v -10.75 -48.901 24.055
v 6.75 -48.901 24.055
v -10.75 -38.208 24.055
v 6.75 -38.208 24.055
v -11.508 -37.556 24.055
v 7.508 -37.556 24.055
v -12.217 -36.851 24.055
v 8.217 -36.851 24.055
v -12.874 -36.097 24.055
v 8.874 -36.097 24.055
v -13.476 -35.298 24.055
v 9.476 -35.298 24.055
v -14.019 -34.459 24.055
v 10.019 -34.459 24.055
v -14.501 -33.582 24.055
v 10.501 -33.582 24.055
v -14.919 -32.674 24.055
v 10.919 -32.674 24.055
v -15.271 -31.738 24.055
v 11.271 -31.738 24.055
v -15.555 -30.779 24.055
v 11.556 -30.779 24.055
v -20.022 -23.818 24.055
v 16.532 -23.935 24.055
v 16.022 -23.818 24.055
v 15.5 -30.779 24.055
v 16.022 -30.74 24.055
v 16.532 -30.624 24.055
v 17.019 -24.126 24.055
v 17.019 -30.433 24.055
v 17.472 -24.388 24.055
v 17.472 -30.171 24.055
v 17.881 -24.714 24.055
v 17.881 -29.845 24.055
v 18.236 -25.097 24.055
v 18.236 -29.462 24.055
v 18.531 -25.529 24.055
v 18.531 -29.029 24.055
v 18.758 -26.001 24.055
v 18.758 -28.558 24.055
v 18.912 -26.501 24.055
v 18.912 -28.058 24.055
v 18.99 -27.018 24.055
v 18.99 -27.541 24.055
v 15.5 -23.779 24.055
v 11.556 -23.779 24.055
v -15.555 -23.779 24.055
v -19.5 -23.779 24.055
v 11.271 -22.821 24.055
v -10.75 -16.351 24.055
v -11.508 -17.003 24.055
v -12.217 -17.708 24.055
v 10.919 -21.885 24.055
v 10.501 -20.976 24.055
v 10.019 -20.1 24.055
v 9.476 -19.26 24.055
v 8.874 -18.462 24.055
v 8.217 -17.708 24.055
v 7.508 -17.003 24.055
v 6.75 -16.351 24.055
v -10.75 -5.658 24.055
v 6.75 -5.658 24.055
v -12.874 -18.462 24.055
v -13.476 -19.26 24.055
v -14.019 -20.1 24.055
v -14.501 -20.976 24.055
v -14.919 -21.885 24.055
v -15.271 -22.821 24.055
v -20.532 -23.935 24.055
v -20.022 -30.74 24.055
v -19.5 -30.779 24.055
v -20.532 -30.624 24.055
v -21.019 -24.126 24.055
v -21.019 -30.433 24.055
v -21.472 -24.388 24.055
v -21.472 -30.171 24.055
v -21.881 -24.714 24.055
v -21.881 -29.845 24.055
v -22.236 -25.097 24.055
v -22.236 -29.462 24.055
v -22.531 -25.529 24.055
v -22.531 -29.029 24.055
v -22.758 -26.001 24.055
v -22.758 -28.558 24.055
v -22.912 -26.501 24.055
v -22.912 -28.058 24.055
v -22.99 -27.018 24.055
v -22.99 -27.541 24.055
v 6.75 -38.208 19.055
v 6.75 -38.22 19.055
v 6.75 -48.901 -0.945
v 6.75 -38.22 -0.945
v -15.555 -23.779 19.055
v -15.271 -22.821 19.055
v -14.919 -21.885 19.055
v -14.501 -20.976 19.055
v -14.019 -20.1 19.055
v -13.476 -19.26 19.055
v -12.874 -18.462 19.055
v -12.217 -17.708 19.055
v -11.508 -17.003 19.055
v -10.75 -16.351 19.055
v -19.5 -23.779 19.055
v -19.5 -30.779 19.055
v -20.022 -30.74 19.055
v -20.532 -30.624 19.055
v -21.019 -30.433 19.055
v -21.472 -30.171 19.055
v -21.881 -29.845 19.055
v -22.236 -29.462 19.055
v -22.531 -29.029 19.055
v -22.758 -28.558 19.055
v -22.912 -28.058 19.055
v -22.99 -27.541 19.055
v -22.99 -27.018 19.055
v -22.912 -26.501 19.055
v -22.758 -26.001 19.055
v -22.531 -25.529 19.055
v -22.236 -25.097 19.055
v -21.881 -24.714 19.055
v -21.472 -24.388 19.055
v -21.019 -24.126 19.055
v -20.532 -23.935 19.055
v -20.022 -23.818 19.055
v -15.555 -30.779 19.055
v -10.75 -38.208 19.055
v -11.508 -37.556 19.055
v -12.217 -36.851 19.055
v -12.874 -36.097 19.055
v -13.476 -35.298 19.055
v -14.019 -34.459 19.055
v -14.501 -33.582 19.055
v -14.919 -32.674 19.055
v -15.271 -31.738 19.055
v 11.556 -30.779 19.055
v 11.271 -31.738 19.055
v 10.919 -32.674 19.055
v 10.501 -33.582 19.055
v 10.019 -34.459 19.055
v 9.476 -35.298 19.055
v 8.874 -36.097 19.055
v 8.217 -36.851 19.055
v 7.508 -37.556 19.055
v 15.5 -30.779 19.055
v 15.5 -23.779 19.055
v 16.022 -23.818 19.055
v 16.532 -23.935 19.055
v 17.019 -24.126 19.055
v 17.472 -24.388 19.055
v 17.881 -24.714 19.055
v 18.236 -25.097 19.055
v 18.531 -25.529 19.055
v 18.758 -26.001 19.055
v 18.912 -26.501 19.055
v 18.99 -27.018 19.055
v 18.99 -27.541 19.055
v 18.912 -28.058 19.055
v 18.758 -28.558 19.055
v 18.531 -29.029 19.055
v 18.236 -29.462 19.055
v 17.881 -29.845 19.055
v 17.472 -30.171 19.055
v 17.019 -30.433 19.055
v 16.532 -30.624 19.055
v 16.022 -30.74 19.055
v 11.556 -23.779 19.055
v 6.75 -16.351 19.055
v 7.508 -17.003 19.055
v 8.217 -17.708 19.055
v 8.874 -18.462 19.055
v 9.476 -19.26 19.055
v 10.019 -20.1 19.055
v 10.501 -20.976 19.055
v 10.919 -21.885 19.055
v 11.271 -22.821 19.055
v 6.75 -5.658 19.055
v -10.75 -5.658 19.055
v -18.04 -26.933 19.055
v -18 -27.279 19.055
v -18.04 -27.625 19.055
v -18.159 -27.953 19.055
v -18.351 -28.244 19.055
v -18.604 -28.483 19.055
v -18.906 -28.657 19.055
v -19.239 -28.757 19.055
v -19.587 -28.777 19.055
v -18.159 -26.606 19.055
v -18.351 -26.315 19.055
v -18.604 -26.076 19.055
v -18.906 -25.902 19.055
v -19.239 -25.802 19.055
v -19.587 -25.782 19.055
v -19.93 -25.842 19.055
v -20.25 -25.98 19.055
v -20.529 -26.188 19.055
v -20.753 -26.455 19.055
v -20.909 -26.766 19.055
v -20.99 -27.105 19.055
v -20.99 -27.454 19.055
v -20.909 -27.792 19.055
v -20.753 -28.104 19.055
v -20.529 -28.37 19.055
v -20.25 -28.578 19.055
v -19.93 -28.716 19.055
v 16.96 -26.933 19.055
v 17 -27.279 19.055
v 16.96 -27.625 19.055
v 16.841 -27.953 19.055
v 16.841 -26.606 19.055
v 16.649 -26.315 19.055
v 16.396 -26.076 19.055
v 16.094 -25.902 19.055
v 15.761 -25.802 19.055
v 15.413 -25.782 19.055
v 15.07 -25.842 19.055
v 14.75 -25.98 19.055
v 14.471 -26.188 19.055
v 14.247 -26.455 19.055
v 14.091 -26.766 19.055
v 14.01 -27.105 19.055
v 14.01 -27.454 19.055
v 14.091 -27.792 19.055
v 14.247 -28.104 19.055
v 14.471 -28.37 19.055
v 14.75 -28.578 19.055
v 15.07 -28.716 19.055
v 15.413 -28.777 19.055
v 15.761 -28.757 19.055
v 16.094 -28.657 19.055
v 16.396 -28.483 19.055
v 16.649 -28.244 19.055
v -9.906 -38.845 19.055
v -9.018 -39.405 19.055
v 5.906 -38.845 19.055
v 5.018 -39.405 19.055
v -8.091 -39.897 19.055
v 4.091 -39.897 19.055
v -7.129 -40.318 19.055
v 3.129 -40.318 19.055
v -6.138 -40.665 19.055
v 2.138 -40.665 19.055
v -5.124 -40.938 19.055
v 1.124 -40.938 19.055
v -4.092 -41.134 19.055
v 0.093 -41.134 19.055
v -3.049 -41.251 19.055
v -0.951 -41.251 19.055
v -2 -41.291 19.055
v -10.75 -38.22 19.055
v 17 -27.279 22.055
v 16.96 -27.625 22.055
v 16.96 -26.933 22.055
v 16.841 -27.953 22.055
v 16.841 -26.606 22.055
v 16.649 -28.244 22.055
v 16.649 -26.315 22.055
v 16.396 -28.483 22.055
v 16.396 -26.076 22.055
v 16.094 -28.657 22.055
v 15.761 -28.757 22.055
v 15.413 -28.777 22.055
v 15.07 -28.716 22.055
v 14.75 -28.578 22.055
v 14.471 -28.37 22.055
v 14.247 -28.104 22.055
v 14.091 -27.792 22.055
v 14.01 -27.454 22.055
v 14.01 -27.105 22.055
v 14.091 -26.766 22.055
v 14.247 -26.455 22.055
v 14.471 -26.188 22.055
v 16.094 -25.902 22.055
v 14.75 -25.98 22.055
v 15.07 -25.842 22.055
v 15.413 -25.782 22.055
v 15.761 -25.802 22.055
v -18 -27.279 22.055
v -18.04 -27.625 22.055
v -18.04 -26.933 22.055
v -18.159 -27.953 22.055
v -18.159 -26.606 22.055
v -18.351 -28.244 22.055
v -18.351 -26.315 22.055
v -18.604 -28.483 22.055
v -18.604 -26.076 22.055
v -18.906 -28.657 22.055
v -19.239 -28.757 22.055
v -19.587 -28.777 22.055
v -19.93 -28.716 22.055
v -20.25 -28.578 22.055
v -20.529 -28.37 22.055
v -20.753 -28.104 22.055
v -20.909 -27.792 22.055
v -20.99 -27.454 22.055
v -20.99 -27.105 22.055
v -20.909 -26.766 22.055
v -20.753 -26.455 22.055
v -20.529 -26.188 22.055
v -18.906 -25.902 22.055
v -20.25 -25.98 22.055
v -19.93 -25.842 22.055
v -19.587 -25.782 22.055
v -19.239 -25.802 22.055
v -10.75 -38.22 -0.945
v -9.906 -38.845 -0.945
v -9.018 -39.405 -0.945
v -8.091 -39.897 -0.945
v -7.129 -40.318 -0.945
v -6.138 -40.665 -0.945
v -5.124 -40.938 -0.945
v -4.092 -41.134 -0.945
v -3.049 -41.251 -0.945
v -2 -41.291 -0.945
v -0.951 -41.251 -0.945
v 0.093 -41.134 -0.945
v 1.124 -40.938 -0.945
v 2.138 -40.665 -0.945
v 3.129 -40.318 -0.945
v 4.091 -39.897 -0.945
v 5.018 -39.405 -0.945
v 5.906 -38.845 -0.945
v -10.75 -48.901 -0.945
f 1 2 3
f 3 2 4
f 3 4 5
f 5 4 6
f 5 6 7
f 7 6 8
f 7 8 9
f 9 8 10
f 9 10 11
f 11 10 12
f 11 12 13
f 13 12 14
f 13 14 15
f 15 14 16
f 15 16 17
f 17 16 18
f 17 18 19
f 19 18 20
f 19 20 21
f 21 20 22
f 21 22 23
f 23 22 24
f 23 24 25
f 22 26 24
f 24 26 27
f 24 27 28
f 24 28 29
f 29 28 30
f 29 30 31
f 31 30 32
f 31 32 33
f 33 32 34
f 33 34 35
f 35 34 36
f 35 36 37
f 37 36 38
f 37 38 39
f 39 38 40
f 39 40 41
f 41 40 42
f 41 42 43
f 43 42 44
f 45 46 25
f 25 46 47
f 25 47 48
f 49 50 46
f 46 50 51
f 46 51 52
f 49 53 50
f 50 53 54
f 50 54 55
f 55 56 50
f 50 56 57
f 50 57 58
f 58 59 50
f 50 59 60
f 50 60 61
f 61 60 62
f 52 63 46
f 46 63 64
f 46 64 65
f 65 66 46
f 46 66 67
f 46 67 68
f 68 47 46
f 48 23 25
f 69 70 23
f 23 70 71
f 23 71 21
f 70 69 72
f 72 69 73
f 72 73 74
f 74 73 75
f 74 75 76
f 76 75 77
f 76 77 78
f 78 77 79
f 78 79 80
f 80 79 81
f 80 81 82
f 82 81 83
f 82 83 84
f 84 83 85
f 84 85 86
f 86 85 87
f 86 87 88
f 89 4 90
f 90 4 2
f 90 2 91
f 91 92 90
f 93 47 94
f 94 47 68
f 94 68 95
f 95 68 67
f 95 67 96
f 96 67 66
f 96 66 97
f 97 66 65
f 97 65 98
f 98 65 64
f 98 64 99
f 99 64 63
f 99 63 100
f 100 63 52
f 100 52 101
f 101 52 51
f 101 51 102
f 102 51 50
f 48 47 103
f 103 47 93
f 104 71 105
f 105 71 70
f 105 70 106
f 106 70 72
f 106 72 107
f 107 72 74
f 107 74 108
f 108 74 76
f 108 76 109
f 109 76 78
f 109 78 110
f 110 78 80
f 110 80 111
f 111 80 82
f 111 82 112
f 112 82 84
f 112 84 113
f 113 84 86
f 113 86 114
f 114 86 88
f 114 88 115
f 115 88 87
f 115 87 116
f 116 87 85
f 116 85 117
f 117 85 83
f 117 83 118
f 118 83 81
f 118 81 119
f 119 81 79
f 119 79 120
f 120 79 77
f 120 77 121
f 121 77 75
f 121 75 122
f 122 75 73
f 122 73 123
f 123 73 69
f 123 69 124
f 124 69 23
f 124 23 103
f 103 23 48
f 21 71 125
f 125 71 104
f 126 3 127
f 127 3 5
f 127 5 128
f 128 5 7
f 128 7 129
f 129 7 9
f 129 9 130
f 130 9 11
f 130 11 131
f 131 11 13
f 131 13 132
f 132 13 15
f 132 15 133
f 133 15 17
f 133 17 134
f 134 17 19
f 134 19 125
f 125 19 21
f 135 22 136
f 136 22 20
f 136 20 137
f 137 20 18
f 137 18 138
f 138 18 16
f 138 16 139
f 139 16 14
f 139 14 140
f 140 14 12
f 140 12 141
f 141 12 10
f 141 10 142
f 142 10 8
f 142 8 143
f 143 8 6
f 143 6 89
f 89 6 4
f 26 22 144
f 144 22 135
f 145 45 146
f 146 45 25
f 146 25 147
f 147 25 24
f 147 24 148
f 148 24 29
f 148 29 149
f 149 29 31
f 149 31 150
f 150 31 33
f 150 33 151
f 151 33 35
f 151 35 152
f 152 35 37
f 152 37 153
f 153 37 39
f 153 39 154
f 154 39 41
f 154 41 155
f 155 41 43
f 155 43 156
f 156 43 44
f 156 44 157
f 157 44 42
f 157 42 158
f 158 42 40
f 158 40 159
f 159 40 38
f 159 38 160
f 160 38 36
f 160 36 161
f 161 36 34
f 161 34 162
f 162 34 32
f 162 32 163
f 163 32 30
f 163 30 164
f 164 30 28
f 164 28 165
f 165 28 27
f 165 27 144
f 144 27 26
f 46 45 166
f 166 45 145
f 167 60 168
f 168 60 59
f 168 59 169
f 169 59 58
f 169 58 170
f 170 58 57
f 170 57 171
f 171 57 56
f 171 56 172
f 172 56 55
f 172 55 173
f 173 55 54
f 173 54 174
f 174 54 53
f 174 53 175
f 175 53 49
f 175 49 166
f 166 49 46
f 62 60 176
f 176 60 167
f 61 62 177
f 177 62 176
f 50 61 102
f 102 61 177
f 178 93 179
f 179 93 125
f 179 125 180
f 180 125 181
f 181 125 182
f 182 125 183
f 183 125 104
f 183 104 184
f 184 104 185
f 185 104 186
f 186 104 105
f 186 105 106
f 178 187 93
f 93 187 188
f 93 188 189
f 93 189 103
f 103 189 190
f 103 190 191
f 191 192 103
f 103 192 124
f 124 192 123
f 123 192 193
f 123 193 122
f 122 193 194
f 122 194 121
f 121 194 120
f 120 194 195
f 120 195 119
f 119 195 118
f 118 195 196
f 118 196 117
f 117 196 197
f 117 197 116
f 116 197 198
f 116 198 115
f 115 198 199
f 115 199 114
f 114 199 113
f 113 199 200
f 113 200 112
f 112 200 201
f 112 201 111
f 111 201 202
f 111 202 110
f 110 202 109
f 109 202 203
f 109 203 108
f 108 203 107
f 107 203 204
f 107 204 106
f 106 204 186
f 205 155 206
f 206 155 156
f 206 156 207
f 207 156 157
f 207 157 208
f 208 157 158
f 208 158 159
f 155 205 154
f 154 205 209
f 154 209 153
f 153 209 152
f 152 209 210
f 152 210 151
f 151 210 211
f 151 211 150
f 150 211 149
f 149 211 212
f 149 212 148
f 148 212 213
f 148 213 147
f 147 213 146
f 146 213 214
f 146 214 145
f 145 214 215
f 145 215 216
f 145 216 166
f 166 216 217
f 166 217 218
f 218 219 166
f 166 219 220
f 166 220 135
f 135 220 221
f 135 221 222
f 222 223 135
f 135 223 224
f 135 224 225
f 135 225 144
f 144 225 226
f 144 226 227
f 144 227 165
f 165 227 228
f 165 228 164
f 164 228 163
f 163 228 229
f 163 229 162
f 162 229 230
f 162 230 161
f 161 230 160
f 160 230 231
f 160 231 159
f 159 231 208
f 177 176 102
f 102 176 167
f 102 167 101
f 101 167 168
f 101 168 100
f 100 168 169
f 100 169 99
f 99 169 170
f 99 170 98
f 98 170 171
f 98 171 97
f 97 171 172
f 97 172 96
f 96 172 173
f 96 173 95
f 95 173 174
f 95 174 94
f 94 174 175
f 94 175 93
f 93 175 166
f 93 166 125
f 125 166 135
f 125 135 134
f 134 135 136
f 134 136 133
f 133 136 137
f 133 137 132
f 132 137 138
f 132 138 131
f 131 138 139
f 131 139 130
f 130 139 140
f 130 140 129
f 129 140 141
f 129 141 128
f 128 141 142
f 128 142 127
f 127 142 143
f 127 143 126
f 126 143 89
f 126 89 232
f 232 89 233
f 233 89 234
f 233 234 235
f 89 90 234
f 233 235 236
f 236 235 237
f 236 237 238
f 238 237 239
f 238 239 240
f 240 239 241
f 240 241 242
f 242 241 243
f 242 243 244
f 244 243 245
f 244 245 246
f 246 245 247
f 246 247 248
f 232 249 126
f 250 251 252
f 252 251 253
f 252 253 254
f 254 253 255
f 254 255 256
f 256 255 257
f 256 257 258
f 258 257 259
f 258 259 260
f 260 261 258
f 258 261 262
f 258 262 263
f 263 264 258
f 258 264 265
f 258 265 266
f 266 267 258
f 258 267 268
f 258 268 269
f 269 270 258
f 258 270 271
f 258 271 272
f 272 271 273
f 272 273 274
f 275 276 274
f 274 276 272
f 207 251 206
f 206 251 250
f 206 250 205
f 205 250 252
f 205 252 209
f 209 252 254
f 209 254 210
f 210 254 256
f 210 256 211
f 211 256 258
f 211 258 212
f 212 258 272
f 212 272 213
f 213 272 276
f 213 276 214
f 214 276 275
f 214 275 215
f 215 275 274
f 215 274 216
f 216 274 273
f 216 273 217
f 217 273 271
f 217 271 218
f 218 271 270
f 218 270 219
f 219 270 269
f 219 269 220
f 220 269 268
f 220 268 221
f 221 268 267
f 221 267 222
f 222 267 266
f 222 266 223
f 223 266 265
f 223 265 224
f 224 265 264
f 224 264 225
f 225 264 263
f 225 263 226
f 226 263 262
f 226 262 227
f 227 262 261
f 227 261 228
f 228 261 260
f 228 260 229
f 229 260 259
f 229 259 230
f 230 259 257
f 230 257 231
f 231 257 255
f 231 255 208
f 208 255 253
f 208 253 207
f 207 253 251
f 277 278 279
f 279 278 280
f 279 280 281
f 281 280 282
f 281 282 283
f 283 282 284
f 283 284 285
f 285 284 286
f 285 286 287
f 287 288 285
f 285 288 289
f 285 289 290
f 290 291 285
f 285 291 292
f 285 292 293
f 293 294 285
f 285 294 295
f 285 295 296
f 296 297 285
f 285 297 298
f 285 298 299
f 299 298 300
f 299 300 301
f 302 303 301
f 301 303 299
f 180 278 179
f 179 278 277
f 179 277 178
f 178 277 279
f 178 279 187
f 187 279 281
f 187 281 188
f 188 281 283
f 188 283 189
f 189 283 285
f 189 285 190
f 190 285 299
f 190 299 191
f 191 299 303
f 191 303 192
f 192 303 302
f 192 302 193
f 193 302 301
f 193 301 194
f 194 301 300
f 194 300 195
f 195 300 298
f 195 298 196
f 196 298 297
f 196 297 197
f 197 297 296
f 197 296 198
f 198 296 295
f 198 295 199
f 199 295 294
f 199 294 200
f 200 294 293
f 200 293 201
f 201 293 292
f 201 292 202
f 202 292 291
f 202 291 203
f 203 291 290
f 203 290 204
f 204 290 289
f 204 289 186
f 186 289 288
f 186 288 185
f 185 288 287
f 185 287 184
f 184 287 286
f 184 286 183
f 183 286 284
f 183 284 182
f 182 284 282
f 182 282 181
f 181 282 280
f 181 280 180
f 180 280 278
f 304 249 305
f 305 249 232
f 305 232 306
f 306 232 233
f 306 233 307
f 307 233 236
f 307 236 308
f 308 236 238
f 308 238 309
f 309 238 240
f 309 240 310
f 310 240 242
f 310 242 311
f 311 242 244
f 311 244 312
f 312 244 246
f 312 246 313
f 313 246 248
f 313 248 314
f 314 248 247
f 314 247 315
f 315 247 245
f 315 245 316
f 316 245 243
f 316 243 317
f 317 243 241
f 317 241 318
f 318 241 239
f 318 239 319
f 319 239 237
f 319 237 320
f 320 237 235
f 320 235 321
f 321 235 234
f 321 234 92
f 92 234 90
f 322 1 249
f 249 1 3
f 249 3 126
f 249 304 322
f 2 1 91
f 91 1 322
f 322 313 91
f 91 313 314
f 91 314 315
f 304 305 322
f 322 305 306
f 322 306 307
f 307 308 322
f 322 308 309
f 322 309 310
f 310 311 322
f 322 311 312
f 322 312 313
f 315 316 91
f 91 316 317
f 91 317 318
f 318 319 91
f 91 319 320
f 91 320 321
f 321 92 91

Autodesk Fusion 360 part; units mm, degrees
sketch "Sketch1" plane through (0, 0, 24.0553) normal (0, 0, 1) x (-1, 0, 0)
  line L0 (10.7499, 16.3506) -> (10.7499, 5.6583)
  line L1 (10.7499, 5.6583) -> (-6.7501, 5.6583)
  line L2 (-6.7501, 5.6583) -> (-6.7501, 16.3506)
  arc A0 (-11.5555, 23.7794) -> (-6.7501, 16.3506) centre (1.9999, 27.2794) ccw
  line L3 (-11.5555, 23.7794) -> (-15.5001, 23.7794)
  arc A1 (-15.5001, 30.7794) -> (-15.5001, 23.7794) centre (-15.5001, 27.2794) ccw
  line L4 (-15.5001, 30.7794) -> (-11.5555, 30.7794)
  arc A2 (-6.7501, 38.2081) -> (-11.5555, 30.7794) centre (1.9999, 27.2794) ccw
  line L5 (-6.7501, 38.2081) -> (-6.7501, 48.9005)
  line L6 (-6.7501, 48.9005) -> (10.7499, 48.9005)
  line L7 (10.7499, 48.9005) -> (10.7499, 38.2081)
  arc A3 (15.5554, 30.7794) -> (10.7499, 38.2081) centre (1.9999, 27.2794) ccw
  line L8 (15.5554, 30.7794) -> (19.4999, 30.7794)
  arc A4 (19.4999, 23.7794) -> (19.4999, 30.7794) centre (19.4999, 27.2794) ccw
  line L9 (19.4999, 23.7794) -> (15.5554, 23.7794)
  arc A5 (10.7499, 16.3506) -> (15.5554, 23.7794) centre (1.9999, 27.2794) ccw
  arc A6 (51.4999, 44.5294) -> (41.4999, 54.5294) centre (41.4999, 44.5294) ccw
  line L10 (41.4999, 54.5294) -> (-37.5001, 54.5294)
  arc A7 (-37.5001, 54.5294) -> (-47.5001, 44.5294) centre (-37.5001, 44.5294) ccw
  line L11 (-47.5001, 44.5294) -> (-47.5001, -34.4706)
  arc A8 (-47.5001, -34.4706) -> (-37.5001, -44.4706) centre (-37.5001, -34.4706) ccw
  line L12 (-37.5001, -44.4706) -> (41.4999, -44.4706)
  arc A9 (41.4999, -44.4706) -> (51.4999, -34.4706) centre (41.4999, -34.4706) ccw
  line L13 (51.4999, -34.4706) -> (51.4999, 44.5294)
  line L14 (42.9999, -37.9706) -> (-39.0001, -37.9706)
  line L15 (-39.0001, -37.9706) -> (-39.0001, 0.0294)
  line L16 (-39.0001, 0.0294) -> (42.9999, 0.0294)
  line L17 (42.9999, 0.0294) -> (42.9999, -37.9706)
  line L18 (10.7499, 48.9005) -> (10.7499, 38.2081)
  line L19 (-6.7501, 48.9005) -> (10.7499, 48.9005)
  line L20 (-6.7501, 38.2081) -> (-6.7501, 48.9005)
  arc A10 (-6.7501, 38.2081) -> (-11.5555, 30.7794) centre (1.9999, 27.2794) ccw
  arc A11 (15.5554, 30.7794) -> (10.7499, 38.2081) centre (1.9999, 27.2794) ccw
  line L21 (15.5554, 30.7794) -> (19.4999, 30.7794)
  arc A12 (19.4999, 23.7794) -> (19.4999, 30.7794) centre (19.4999, 27.2794) ccw
  line L22 (19.4999, 23.7794) -> (15.5554, 23.7794)
  arc A13 (15.5524, 23.7794) -> (15.5583, 30.7794) centre (1.9999, 27.2908) ccw
  line L23 (15.5524, 23.7794) -> (19.4999, 23.7794)
  arc A14 (19.4999, 23.7794) -> (19.4999, 30.7794) centre (19.4999, 27.2794) ccw
  line L24 (19.4999, 30.7794) -> (15.5583, 30.7794)
  circle A15 centre (19.4999, 27.2794) radius 2
  arc A16 (-11.5585, 30.7794) -> (-11.5526, 23.7794) centre (1.9999, 27.2908) ccw
  line L25 (-11.5585, 30.7794) -> (-15.5001, 30.7794)
  arc A17 (-15.5001, 30.7794) -> (-15.5001, 23.7794) centre (-15.5001, 27.2794) ccw
  line L26 (-15.5001, 23.7794) -> (-11.5526, 23.7794)
  circle A18 centre (-15.5001, 27.2794) radius 2
  line L27 (-6.7501, 5.6583) -> (-6.7501, 16.3506)
  line L28 (10.7499, 5.6583) -> (-6.7501, 5.6583)
  line L29 (10.7499, 16.3506) -> (10.7499, 5.6583)
  circle A19 centre (1.9999, 27.2908) radius 14
  arc A20 (-15.5001, 30.7794) -> (-15.5001, 23.7794) centre (-15.5001, 27.2794) ccw
  line L30 (-15.5001, 30.7794) -> (-11.5555, 30.7794)
  line L31 (-11.5555, 23.7794) -> (-15.5001, 23.7794)
  arc A21 (-11.5555, 23.7794) -> (-6.7501, 16.3506) centre (1.9999, 27.2794) ccw
  arc A22 (10.7499, 16.3506) -> (15.5554, 23.7794) centre (1.9999, 27.2794) ccw
  circle A23 centre (1.9999, 27.2908) radius 13
  circle A24 centre (19.4999, 27.2794) radius 1.5
  circle A25 centre (-15.5001, 27.2794) radius 1.5
extrude "Extrude2" add sketch "Sketch1" against normal blind 5 contours L0 L1 L2 A0 A5 L23 L26 L27 L28 L29 A19 A21 A22 | L8 A4 L9 L21 A12 L22 A13 L23 A14 L24 A19 | L4 A2 L5 L7 A3 L8 L18 L20 A10 A11 L21 A13 A16 A19 L30 | L3 A1 L4 A16 L25 A17 L26 A19 A20 L30 L31 | L7 A3 L8 L18 A11 L21 A19 | L4 A2 L5 L20 A10 A19 L30 | A23 makes body 1
extrude "Extrude1" add sketch "Sketch1" against normal blind 25 separate body contours L5 L6 L7 L18 L19 L20 A19 makes body 2
extrude "Extrude3" add sketch "Sketch1" against normal blind 4 separate body contours A15 | A18 makes body 3 at (-21.4974, -27.1797, 21.3887) makes body 4 at (13.5026, -27.1797, 21.3887)
sketch "Sketch2" plane through (0, 0, 24.0553) normal (0, 0, 1) x (-1, 0, 0)
  circle A0 centre (19.4999, 27.2794) radius 1.5
  circle A1 centre (19.4999, 27.2794) radius 1.5
extrude "Extrude4" add sketch "Sketch2" against normal blind 2 bodies 3
sketch "Sketch3" plane through (0, 0, 24.0553) normal (0, 0, 1) x (-1, 0, 0)
  circle A0 centre (-15.5001, 27.2794) radius 1.5
  circle A1 centre (-15.5001, 27.2794) radius 1.5
extrude "Extrude5" add sketch "Sketch3" against normal blind 2 bodies 4
extrude "Extrude6" add 1 faces at (13.7846, -26.6463, 20.0553) along direction (0, 0, -1) blind 1 on bodies 4 bodies 4 1
extrude "Extrude7" add 1 faces at (-18.7404, -28.9428, 20.0553) along direction (0, 0, -1) blind 1 on bodies 3 bodies 3 2 4
sketch "Sketch4" plane through (0, 0, 24.0553) normal (0, 0, 1) x (-1, 0, 0)
  line L0 (10.7499, 5.6583) -> (10.7499, 16.3506)
  arc A0 (10.7499, 16.3506) -> (15.5554, 23.7794) centre (1.9999, 27.2794) ccw
  line L1 (15.5554, 23.7794) -> (19.4999, 23.7794)
  arc A1 (19.4999, 23.7794) -> (19.4999, 30.7794) centre (19.4999, 27.2794) ccw
  line L2 (19.4999, 30.7794) -> (15.5554, 30.7794)
  arc A2 (15.5554, 30.7794) -> (10.7499, 38.2081) centre (1.9999, 27.2794) ccw
  line L3 (10.7499, 38.2081) -> (10.7499, 38.2196)
  arc A3 (10.7499, 38.2196) -> (-6.7501, 38.2196) centre (1.9999, 27.2908) ccw
  line L4 (-6.7501, 38.2196) -> (-6.7501, 38.2081)
  arc A4 (-6.7501, 38.2081) -> (-11.5555, 30.7794) centre (1.9999, 27.2794) ccw
  line L5 (-11.5555, 30.7794) -> (-15.5001, 30.7794)
  arc A5 (-15.5001, 30.7794) -> (-15.5001, 23.7794) centre (-15.5001, 27.2794) ccw
  line L6 (-15.5001, 23.7794) -> (-11.5555, 23.7794)
  arc A6 (-11.5555, 23.7794) -> (-6.7501, 16.3506) centre (1.9999, 27.2794) ccw
  line L7 (-6.7501, 16.3506) -> (-6.7501, 5.6583)
  line L8 (-6.7501, 5.6583) -> (10.7499, 5.6583)
  line L9 (10.7499, 48.9005) -> (-6.7501, 48.9005)
  line L10 (-6.7501, 48.9005) -> (-6.7501, 38.2196)
  arc A7 (10.7499, 38.2196) -> (-6.7501, 38.2196) centre (1.9999, 27.2908) ccw
  line L11 (10.7499, 38.2196) -> (10.7499, 48.9005)
  line L12 (10.7499, 38.2196) -> (10.7499, 48.9005)
  line L13 (-6.7501, 48.9005) -> (-6.7501, 38.2196)
  circle A8 centre (1.9999, 27.2908) radius 14
extrude "Extrude8" add sketch "Sketch4" against normal blind 25 contours A3 L9 L10 A7 L11 L12 L13 A8 bodies 2 3
